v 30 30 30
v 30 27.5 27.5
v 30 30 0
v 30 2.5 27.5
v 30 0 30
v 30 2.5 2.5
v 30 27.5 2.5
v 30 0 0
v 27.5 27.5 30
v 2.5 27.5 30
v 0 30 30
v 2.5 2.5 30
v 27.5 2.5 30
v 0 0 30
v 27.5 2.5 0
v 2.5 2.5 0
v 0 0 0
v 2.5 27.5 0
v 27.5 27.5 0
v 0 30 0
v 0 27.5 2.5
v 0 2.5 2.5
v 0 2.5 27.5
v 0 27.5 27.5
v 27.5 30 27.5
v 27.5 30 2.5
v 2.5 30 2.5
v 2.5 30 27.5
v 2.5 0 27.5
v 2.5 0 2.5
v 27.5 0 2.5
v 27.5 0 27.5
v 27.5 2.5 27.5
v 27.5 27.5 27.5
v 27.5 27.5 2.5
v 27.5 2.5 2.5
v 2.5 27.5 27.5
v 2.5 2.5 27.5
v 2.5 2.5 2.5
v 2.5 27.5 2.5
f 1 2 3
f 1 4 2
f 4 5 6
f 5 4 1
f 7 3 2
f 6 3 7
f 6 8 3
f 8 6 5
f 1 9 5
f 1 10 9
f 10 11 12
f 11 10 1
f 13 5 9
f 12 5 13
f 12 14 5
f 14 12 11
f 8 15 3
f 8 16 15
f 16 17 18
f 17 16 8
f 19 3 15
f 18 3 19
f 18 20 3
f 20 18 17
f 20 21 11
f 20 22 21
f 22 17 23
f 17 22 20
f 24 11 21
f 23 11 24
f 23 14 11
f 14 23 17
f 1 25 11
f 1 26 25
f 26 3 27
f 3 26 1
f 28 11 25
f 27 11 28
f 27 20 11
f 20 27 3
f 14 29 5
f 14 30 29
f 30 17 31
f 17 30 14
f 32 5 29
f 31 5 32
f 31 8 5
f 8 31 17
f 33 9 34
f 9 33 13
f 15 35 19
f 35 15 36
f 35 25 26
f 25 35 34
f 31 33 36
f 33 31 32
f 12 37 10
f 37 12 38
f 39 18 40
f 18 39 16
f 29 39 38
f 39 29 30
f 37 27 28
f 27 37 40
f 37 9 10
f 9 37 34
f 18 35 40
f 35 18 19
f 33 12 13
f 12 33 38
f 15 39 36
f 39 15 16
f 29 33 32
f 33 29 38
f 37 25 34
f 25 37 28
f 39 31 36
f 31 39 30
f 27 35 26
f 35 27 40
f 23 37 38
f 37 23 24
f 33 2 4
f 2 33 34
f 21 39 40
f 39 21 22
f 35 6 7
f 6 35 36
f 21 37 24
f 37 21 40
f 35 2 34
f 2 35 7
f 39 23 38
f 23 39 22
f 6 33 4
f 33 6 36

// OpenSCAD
difference () {
    cube(30);
    translate([2.5,2.5,-1]) cube([25,25,35]);
    translate([2.5,-1,2.5]) cube([25,35,25]);
    translate([-1,2.5,2.5]) cube([35,25,25]);
}
